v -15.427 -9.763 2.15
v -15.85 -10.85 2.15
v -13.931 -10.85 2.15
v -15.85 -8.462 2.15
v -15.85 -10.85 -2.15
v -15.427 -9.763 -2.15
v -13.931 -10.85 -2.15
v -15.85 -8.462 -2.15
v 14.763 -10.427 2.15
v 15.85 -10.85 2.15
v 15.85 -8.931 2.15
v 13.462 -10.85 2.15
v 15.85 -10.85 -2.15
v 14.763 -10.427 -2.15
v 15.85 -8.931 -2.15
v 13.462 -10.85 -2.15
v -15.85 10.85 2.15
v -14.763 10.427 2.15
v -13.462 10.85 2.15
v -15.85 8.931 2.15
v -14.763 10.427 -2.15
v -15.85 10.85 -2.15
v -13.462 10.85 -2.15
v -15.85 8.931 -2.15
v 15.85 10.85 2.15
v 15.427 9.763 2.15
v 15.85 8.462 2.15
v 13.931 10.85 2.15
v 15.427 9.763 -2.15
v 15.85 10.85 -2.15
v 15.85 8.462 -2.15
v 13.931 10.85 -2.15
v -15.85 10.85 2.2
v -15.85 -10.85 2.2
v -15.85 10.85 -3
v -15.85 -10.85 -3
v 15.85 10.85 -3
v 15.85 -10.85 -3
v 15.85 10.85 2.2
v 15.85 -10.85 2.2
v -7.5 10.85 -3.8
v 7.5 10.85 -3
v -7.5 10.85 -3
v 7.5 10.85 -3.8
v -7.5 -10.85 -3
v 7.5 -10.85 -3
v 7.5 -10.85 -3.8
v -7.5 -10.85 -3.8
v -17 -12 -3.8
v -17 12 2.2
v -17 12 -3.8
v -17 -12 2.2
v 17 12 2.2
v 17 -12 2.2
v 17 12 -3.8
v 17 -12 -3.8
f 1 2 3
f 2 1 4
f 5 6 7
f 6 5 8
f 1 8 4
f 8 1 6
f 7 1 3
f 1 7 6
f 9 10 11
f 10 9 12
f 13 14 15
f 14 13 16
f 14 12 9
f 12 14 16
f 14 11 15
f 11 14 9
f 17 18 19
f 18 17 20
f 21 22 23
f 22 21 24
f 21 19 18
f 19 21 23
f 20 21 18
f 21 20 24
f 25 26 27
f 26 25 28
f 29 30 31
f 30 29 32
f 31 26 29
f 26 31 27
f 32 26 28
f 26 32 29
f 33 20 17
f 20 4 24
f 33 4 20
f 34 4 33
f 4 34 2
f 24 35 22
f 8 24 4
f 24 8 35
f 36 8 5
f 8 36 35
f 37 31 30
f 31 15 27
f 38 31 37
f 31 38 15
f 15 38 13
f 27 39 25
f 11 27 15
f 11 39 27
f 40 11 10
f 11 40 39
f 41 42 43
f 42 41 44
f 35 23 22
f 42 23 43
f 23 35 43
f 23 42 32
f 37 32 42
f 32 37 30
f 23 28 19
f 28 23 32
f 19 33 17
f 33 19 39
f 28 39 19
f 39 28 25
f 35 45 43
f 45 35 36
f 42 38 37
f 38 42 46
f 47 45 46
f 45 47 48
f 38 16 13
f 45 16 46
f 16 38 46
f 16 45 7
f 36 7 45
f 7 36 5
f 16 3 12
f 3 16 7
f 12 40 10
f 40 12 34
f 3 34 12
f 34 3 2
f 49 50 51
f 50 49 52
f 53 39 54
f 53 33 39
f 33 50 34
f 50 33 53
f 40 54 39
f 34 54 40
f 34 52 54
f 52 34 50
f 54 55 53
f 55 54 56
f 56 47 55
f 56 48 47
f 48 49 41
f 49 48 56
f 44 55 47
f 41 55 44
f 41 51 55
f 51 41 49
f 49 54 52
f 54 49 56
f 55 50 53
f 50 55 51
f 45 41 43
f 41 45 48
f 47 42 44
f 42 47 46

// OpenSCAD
module fillet(r, h) {
    translate([r / 2, r / 2, 0])
        difference() {
            cube([r + 0.01, r + 0.01, h], center = true);
            translate([r/2, r/2, 0])
                cylinder(r = r, h = h + 1, center = true);
        }
}


difference(){
    difference(){
        translate([0,0,-0.8])cube([34,24,6],true);
        difference(){
            cube([31.7,21.7,6],true);
            union(){
                translate([-16,-11,0])fillet(3,4.3);
                translate([16,-11,0])rotate([0,0,90])fillet(3,4.3);
                translate([-16,11,0])rotate([0,0,270])fillet(3,4.3);
                translate([16,11,0])rotate([0,0,180])fillet(3,4.3);
            }
        }
    }
    cube([15,21.7,20], true);
}
